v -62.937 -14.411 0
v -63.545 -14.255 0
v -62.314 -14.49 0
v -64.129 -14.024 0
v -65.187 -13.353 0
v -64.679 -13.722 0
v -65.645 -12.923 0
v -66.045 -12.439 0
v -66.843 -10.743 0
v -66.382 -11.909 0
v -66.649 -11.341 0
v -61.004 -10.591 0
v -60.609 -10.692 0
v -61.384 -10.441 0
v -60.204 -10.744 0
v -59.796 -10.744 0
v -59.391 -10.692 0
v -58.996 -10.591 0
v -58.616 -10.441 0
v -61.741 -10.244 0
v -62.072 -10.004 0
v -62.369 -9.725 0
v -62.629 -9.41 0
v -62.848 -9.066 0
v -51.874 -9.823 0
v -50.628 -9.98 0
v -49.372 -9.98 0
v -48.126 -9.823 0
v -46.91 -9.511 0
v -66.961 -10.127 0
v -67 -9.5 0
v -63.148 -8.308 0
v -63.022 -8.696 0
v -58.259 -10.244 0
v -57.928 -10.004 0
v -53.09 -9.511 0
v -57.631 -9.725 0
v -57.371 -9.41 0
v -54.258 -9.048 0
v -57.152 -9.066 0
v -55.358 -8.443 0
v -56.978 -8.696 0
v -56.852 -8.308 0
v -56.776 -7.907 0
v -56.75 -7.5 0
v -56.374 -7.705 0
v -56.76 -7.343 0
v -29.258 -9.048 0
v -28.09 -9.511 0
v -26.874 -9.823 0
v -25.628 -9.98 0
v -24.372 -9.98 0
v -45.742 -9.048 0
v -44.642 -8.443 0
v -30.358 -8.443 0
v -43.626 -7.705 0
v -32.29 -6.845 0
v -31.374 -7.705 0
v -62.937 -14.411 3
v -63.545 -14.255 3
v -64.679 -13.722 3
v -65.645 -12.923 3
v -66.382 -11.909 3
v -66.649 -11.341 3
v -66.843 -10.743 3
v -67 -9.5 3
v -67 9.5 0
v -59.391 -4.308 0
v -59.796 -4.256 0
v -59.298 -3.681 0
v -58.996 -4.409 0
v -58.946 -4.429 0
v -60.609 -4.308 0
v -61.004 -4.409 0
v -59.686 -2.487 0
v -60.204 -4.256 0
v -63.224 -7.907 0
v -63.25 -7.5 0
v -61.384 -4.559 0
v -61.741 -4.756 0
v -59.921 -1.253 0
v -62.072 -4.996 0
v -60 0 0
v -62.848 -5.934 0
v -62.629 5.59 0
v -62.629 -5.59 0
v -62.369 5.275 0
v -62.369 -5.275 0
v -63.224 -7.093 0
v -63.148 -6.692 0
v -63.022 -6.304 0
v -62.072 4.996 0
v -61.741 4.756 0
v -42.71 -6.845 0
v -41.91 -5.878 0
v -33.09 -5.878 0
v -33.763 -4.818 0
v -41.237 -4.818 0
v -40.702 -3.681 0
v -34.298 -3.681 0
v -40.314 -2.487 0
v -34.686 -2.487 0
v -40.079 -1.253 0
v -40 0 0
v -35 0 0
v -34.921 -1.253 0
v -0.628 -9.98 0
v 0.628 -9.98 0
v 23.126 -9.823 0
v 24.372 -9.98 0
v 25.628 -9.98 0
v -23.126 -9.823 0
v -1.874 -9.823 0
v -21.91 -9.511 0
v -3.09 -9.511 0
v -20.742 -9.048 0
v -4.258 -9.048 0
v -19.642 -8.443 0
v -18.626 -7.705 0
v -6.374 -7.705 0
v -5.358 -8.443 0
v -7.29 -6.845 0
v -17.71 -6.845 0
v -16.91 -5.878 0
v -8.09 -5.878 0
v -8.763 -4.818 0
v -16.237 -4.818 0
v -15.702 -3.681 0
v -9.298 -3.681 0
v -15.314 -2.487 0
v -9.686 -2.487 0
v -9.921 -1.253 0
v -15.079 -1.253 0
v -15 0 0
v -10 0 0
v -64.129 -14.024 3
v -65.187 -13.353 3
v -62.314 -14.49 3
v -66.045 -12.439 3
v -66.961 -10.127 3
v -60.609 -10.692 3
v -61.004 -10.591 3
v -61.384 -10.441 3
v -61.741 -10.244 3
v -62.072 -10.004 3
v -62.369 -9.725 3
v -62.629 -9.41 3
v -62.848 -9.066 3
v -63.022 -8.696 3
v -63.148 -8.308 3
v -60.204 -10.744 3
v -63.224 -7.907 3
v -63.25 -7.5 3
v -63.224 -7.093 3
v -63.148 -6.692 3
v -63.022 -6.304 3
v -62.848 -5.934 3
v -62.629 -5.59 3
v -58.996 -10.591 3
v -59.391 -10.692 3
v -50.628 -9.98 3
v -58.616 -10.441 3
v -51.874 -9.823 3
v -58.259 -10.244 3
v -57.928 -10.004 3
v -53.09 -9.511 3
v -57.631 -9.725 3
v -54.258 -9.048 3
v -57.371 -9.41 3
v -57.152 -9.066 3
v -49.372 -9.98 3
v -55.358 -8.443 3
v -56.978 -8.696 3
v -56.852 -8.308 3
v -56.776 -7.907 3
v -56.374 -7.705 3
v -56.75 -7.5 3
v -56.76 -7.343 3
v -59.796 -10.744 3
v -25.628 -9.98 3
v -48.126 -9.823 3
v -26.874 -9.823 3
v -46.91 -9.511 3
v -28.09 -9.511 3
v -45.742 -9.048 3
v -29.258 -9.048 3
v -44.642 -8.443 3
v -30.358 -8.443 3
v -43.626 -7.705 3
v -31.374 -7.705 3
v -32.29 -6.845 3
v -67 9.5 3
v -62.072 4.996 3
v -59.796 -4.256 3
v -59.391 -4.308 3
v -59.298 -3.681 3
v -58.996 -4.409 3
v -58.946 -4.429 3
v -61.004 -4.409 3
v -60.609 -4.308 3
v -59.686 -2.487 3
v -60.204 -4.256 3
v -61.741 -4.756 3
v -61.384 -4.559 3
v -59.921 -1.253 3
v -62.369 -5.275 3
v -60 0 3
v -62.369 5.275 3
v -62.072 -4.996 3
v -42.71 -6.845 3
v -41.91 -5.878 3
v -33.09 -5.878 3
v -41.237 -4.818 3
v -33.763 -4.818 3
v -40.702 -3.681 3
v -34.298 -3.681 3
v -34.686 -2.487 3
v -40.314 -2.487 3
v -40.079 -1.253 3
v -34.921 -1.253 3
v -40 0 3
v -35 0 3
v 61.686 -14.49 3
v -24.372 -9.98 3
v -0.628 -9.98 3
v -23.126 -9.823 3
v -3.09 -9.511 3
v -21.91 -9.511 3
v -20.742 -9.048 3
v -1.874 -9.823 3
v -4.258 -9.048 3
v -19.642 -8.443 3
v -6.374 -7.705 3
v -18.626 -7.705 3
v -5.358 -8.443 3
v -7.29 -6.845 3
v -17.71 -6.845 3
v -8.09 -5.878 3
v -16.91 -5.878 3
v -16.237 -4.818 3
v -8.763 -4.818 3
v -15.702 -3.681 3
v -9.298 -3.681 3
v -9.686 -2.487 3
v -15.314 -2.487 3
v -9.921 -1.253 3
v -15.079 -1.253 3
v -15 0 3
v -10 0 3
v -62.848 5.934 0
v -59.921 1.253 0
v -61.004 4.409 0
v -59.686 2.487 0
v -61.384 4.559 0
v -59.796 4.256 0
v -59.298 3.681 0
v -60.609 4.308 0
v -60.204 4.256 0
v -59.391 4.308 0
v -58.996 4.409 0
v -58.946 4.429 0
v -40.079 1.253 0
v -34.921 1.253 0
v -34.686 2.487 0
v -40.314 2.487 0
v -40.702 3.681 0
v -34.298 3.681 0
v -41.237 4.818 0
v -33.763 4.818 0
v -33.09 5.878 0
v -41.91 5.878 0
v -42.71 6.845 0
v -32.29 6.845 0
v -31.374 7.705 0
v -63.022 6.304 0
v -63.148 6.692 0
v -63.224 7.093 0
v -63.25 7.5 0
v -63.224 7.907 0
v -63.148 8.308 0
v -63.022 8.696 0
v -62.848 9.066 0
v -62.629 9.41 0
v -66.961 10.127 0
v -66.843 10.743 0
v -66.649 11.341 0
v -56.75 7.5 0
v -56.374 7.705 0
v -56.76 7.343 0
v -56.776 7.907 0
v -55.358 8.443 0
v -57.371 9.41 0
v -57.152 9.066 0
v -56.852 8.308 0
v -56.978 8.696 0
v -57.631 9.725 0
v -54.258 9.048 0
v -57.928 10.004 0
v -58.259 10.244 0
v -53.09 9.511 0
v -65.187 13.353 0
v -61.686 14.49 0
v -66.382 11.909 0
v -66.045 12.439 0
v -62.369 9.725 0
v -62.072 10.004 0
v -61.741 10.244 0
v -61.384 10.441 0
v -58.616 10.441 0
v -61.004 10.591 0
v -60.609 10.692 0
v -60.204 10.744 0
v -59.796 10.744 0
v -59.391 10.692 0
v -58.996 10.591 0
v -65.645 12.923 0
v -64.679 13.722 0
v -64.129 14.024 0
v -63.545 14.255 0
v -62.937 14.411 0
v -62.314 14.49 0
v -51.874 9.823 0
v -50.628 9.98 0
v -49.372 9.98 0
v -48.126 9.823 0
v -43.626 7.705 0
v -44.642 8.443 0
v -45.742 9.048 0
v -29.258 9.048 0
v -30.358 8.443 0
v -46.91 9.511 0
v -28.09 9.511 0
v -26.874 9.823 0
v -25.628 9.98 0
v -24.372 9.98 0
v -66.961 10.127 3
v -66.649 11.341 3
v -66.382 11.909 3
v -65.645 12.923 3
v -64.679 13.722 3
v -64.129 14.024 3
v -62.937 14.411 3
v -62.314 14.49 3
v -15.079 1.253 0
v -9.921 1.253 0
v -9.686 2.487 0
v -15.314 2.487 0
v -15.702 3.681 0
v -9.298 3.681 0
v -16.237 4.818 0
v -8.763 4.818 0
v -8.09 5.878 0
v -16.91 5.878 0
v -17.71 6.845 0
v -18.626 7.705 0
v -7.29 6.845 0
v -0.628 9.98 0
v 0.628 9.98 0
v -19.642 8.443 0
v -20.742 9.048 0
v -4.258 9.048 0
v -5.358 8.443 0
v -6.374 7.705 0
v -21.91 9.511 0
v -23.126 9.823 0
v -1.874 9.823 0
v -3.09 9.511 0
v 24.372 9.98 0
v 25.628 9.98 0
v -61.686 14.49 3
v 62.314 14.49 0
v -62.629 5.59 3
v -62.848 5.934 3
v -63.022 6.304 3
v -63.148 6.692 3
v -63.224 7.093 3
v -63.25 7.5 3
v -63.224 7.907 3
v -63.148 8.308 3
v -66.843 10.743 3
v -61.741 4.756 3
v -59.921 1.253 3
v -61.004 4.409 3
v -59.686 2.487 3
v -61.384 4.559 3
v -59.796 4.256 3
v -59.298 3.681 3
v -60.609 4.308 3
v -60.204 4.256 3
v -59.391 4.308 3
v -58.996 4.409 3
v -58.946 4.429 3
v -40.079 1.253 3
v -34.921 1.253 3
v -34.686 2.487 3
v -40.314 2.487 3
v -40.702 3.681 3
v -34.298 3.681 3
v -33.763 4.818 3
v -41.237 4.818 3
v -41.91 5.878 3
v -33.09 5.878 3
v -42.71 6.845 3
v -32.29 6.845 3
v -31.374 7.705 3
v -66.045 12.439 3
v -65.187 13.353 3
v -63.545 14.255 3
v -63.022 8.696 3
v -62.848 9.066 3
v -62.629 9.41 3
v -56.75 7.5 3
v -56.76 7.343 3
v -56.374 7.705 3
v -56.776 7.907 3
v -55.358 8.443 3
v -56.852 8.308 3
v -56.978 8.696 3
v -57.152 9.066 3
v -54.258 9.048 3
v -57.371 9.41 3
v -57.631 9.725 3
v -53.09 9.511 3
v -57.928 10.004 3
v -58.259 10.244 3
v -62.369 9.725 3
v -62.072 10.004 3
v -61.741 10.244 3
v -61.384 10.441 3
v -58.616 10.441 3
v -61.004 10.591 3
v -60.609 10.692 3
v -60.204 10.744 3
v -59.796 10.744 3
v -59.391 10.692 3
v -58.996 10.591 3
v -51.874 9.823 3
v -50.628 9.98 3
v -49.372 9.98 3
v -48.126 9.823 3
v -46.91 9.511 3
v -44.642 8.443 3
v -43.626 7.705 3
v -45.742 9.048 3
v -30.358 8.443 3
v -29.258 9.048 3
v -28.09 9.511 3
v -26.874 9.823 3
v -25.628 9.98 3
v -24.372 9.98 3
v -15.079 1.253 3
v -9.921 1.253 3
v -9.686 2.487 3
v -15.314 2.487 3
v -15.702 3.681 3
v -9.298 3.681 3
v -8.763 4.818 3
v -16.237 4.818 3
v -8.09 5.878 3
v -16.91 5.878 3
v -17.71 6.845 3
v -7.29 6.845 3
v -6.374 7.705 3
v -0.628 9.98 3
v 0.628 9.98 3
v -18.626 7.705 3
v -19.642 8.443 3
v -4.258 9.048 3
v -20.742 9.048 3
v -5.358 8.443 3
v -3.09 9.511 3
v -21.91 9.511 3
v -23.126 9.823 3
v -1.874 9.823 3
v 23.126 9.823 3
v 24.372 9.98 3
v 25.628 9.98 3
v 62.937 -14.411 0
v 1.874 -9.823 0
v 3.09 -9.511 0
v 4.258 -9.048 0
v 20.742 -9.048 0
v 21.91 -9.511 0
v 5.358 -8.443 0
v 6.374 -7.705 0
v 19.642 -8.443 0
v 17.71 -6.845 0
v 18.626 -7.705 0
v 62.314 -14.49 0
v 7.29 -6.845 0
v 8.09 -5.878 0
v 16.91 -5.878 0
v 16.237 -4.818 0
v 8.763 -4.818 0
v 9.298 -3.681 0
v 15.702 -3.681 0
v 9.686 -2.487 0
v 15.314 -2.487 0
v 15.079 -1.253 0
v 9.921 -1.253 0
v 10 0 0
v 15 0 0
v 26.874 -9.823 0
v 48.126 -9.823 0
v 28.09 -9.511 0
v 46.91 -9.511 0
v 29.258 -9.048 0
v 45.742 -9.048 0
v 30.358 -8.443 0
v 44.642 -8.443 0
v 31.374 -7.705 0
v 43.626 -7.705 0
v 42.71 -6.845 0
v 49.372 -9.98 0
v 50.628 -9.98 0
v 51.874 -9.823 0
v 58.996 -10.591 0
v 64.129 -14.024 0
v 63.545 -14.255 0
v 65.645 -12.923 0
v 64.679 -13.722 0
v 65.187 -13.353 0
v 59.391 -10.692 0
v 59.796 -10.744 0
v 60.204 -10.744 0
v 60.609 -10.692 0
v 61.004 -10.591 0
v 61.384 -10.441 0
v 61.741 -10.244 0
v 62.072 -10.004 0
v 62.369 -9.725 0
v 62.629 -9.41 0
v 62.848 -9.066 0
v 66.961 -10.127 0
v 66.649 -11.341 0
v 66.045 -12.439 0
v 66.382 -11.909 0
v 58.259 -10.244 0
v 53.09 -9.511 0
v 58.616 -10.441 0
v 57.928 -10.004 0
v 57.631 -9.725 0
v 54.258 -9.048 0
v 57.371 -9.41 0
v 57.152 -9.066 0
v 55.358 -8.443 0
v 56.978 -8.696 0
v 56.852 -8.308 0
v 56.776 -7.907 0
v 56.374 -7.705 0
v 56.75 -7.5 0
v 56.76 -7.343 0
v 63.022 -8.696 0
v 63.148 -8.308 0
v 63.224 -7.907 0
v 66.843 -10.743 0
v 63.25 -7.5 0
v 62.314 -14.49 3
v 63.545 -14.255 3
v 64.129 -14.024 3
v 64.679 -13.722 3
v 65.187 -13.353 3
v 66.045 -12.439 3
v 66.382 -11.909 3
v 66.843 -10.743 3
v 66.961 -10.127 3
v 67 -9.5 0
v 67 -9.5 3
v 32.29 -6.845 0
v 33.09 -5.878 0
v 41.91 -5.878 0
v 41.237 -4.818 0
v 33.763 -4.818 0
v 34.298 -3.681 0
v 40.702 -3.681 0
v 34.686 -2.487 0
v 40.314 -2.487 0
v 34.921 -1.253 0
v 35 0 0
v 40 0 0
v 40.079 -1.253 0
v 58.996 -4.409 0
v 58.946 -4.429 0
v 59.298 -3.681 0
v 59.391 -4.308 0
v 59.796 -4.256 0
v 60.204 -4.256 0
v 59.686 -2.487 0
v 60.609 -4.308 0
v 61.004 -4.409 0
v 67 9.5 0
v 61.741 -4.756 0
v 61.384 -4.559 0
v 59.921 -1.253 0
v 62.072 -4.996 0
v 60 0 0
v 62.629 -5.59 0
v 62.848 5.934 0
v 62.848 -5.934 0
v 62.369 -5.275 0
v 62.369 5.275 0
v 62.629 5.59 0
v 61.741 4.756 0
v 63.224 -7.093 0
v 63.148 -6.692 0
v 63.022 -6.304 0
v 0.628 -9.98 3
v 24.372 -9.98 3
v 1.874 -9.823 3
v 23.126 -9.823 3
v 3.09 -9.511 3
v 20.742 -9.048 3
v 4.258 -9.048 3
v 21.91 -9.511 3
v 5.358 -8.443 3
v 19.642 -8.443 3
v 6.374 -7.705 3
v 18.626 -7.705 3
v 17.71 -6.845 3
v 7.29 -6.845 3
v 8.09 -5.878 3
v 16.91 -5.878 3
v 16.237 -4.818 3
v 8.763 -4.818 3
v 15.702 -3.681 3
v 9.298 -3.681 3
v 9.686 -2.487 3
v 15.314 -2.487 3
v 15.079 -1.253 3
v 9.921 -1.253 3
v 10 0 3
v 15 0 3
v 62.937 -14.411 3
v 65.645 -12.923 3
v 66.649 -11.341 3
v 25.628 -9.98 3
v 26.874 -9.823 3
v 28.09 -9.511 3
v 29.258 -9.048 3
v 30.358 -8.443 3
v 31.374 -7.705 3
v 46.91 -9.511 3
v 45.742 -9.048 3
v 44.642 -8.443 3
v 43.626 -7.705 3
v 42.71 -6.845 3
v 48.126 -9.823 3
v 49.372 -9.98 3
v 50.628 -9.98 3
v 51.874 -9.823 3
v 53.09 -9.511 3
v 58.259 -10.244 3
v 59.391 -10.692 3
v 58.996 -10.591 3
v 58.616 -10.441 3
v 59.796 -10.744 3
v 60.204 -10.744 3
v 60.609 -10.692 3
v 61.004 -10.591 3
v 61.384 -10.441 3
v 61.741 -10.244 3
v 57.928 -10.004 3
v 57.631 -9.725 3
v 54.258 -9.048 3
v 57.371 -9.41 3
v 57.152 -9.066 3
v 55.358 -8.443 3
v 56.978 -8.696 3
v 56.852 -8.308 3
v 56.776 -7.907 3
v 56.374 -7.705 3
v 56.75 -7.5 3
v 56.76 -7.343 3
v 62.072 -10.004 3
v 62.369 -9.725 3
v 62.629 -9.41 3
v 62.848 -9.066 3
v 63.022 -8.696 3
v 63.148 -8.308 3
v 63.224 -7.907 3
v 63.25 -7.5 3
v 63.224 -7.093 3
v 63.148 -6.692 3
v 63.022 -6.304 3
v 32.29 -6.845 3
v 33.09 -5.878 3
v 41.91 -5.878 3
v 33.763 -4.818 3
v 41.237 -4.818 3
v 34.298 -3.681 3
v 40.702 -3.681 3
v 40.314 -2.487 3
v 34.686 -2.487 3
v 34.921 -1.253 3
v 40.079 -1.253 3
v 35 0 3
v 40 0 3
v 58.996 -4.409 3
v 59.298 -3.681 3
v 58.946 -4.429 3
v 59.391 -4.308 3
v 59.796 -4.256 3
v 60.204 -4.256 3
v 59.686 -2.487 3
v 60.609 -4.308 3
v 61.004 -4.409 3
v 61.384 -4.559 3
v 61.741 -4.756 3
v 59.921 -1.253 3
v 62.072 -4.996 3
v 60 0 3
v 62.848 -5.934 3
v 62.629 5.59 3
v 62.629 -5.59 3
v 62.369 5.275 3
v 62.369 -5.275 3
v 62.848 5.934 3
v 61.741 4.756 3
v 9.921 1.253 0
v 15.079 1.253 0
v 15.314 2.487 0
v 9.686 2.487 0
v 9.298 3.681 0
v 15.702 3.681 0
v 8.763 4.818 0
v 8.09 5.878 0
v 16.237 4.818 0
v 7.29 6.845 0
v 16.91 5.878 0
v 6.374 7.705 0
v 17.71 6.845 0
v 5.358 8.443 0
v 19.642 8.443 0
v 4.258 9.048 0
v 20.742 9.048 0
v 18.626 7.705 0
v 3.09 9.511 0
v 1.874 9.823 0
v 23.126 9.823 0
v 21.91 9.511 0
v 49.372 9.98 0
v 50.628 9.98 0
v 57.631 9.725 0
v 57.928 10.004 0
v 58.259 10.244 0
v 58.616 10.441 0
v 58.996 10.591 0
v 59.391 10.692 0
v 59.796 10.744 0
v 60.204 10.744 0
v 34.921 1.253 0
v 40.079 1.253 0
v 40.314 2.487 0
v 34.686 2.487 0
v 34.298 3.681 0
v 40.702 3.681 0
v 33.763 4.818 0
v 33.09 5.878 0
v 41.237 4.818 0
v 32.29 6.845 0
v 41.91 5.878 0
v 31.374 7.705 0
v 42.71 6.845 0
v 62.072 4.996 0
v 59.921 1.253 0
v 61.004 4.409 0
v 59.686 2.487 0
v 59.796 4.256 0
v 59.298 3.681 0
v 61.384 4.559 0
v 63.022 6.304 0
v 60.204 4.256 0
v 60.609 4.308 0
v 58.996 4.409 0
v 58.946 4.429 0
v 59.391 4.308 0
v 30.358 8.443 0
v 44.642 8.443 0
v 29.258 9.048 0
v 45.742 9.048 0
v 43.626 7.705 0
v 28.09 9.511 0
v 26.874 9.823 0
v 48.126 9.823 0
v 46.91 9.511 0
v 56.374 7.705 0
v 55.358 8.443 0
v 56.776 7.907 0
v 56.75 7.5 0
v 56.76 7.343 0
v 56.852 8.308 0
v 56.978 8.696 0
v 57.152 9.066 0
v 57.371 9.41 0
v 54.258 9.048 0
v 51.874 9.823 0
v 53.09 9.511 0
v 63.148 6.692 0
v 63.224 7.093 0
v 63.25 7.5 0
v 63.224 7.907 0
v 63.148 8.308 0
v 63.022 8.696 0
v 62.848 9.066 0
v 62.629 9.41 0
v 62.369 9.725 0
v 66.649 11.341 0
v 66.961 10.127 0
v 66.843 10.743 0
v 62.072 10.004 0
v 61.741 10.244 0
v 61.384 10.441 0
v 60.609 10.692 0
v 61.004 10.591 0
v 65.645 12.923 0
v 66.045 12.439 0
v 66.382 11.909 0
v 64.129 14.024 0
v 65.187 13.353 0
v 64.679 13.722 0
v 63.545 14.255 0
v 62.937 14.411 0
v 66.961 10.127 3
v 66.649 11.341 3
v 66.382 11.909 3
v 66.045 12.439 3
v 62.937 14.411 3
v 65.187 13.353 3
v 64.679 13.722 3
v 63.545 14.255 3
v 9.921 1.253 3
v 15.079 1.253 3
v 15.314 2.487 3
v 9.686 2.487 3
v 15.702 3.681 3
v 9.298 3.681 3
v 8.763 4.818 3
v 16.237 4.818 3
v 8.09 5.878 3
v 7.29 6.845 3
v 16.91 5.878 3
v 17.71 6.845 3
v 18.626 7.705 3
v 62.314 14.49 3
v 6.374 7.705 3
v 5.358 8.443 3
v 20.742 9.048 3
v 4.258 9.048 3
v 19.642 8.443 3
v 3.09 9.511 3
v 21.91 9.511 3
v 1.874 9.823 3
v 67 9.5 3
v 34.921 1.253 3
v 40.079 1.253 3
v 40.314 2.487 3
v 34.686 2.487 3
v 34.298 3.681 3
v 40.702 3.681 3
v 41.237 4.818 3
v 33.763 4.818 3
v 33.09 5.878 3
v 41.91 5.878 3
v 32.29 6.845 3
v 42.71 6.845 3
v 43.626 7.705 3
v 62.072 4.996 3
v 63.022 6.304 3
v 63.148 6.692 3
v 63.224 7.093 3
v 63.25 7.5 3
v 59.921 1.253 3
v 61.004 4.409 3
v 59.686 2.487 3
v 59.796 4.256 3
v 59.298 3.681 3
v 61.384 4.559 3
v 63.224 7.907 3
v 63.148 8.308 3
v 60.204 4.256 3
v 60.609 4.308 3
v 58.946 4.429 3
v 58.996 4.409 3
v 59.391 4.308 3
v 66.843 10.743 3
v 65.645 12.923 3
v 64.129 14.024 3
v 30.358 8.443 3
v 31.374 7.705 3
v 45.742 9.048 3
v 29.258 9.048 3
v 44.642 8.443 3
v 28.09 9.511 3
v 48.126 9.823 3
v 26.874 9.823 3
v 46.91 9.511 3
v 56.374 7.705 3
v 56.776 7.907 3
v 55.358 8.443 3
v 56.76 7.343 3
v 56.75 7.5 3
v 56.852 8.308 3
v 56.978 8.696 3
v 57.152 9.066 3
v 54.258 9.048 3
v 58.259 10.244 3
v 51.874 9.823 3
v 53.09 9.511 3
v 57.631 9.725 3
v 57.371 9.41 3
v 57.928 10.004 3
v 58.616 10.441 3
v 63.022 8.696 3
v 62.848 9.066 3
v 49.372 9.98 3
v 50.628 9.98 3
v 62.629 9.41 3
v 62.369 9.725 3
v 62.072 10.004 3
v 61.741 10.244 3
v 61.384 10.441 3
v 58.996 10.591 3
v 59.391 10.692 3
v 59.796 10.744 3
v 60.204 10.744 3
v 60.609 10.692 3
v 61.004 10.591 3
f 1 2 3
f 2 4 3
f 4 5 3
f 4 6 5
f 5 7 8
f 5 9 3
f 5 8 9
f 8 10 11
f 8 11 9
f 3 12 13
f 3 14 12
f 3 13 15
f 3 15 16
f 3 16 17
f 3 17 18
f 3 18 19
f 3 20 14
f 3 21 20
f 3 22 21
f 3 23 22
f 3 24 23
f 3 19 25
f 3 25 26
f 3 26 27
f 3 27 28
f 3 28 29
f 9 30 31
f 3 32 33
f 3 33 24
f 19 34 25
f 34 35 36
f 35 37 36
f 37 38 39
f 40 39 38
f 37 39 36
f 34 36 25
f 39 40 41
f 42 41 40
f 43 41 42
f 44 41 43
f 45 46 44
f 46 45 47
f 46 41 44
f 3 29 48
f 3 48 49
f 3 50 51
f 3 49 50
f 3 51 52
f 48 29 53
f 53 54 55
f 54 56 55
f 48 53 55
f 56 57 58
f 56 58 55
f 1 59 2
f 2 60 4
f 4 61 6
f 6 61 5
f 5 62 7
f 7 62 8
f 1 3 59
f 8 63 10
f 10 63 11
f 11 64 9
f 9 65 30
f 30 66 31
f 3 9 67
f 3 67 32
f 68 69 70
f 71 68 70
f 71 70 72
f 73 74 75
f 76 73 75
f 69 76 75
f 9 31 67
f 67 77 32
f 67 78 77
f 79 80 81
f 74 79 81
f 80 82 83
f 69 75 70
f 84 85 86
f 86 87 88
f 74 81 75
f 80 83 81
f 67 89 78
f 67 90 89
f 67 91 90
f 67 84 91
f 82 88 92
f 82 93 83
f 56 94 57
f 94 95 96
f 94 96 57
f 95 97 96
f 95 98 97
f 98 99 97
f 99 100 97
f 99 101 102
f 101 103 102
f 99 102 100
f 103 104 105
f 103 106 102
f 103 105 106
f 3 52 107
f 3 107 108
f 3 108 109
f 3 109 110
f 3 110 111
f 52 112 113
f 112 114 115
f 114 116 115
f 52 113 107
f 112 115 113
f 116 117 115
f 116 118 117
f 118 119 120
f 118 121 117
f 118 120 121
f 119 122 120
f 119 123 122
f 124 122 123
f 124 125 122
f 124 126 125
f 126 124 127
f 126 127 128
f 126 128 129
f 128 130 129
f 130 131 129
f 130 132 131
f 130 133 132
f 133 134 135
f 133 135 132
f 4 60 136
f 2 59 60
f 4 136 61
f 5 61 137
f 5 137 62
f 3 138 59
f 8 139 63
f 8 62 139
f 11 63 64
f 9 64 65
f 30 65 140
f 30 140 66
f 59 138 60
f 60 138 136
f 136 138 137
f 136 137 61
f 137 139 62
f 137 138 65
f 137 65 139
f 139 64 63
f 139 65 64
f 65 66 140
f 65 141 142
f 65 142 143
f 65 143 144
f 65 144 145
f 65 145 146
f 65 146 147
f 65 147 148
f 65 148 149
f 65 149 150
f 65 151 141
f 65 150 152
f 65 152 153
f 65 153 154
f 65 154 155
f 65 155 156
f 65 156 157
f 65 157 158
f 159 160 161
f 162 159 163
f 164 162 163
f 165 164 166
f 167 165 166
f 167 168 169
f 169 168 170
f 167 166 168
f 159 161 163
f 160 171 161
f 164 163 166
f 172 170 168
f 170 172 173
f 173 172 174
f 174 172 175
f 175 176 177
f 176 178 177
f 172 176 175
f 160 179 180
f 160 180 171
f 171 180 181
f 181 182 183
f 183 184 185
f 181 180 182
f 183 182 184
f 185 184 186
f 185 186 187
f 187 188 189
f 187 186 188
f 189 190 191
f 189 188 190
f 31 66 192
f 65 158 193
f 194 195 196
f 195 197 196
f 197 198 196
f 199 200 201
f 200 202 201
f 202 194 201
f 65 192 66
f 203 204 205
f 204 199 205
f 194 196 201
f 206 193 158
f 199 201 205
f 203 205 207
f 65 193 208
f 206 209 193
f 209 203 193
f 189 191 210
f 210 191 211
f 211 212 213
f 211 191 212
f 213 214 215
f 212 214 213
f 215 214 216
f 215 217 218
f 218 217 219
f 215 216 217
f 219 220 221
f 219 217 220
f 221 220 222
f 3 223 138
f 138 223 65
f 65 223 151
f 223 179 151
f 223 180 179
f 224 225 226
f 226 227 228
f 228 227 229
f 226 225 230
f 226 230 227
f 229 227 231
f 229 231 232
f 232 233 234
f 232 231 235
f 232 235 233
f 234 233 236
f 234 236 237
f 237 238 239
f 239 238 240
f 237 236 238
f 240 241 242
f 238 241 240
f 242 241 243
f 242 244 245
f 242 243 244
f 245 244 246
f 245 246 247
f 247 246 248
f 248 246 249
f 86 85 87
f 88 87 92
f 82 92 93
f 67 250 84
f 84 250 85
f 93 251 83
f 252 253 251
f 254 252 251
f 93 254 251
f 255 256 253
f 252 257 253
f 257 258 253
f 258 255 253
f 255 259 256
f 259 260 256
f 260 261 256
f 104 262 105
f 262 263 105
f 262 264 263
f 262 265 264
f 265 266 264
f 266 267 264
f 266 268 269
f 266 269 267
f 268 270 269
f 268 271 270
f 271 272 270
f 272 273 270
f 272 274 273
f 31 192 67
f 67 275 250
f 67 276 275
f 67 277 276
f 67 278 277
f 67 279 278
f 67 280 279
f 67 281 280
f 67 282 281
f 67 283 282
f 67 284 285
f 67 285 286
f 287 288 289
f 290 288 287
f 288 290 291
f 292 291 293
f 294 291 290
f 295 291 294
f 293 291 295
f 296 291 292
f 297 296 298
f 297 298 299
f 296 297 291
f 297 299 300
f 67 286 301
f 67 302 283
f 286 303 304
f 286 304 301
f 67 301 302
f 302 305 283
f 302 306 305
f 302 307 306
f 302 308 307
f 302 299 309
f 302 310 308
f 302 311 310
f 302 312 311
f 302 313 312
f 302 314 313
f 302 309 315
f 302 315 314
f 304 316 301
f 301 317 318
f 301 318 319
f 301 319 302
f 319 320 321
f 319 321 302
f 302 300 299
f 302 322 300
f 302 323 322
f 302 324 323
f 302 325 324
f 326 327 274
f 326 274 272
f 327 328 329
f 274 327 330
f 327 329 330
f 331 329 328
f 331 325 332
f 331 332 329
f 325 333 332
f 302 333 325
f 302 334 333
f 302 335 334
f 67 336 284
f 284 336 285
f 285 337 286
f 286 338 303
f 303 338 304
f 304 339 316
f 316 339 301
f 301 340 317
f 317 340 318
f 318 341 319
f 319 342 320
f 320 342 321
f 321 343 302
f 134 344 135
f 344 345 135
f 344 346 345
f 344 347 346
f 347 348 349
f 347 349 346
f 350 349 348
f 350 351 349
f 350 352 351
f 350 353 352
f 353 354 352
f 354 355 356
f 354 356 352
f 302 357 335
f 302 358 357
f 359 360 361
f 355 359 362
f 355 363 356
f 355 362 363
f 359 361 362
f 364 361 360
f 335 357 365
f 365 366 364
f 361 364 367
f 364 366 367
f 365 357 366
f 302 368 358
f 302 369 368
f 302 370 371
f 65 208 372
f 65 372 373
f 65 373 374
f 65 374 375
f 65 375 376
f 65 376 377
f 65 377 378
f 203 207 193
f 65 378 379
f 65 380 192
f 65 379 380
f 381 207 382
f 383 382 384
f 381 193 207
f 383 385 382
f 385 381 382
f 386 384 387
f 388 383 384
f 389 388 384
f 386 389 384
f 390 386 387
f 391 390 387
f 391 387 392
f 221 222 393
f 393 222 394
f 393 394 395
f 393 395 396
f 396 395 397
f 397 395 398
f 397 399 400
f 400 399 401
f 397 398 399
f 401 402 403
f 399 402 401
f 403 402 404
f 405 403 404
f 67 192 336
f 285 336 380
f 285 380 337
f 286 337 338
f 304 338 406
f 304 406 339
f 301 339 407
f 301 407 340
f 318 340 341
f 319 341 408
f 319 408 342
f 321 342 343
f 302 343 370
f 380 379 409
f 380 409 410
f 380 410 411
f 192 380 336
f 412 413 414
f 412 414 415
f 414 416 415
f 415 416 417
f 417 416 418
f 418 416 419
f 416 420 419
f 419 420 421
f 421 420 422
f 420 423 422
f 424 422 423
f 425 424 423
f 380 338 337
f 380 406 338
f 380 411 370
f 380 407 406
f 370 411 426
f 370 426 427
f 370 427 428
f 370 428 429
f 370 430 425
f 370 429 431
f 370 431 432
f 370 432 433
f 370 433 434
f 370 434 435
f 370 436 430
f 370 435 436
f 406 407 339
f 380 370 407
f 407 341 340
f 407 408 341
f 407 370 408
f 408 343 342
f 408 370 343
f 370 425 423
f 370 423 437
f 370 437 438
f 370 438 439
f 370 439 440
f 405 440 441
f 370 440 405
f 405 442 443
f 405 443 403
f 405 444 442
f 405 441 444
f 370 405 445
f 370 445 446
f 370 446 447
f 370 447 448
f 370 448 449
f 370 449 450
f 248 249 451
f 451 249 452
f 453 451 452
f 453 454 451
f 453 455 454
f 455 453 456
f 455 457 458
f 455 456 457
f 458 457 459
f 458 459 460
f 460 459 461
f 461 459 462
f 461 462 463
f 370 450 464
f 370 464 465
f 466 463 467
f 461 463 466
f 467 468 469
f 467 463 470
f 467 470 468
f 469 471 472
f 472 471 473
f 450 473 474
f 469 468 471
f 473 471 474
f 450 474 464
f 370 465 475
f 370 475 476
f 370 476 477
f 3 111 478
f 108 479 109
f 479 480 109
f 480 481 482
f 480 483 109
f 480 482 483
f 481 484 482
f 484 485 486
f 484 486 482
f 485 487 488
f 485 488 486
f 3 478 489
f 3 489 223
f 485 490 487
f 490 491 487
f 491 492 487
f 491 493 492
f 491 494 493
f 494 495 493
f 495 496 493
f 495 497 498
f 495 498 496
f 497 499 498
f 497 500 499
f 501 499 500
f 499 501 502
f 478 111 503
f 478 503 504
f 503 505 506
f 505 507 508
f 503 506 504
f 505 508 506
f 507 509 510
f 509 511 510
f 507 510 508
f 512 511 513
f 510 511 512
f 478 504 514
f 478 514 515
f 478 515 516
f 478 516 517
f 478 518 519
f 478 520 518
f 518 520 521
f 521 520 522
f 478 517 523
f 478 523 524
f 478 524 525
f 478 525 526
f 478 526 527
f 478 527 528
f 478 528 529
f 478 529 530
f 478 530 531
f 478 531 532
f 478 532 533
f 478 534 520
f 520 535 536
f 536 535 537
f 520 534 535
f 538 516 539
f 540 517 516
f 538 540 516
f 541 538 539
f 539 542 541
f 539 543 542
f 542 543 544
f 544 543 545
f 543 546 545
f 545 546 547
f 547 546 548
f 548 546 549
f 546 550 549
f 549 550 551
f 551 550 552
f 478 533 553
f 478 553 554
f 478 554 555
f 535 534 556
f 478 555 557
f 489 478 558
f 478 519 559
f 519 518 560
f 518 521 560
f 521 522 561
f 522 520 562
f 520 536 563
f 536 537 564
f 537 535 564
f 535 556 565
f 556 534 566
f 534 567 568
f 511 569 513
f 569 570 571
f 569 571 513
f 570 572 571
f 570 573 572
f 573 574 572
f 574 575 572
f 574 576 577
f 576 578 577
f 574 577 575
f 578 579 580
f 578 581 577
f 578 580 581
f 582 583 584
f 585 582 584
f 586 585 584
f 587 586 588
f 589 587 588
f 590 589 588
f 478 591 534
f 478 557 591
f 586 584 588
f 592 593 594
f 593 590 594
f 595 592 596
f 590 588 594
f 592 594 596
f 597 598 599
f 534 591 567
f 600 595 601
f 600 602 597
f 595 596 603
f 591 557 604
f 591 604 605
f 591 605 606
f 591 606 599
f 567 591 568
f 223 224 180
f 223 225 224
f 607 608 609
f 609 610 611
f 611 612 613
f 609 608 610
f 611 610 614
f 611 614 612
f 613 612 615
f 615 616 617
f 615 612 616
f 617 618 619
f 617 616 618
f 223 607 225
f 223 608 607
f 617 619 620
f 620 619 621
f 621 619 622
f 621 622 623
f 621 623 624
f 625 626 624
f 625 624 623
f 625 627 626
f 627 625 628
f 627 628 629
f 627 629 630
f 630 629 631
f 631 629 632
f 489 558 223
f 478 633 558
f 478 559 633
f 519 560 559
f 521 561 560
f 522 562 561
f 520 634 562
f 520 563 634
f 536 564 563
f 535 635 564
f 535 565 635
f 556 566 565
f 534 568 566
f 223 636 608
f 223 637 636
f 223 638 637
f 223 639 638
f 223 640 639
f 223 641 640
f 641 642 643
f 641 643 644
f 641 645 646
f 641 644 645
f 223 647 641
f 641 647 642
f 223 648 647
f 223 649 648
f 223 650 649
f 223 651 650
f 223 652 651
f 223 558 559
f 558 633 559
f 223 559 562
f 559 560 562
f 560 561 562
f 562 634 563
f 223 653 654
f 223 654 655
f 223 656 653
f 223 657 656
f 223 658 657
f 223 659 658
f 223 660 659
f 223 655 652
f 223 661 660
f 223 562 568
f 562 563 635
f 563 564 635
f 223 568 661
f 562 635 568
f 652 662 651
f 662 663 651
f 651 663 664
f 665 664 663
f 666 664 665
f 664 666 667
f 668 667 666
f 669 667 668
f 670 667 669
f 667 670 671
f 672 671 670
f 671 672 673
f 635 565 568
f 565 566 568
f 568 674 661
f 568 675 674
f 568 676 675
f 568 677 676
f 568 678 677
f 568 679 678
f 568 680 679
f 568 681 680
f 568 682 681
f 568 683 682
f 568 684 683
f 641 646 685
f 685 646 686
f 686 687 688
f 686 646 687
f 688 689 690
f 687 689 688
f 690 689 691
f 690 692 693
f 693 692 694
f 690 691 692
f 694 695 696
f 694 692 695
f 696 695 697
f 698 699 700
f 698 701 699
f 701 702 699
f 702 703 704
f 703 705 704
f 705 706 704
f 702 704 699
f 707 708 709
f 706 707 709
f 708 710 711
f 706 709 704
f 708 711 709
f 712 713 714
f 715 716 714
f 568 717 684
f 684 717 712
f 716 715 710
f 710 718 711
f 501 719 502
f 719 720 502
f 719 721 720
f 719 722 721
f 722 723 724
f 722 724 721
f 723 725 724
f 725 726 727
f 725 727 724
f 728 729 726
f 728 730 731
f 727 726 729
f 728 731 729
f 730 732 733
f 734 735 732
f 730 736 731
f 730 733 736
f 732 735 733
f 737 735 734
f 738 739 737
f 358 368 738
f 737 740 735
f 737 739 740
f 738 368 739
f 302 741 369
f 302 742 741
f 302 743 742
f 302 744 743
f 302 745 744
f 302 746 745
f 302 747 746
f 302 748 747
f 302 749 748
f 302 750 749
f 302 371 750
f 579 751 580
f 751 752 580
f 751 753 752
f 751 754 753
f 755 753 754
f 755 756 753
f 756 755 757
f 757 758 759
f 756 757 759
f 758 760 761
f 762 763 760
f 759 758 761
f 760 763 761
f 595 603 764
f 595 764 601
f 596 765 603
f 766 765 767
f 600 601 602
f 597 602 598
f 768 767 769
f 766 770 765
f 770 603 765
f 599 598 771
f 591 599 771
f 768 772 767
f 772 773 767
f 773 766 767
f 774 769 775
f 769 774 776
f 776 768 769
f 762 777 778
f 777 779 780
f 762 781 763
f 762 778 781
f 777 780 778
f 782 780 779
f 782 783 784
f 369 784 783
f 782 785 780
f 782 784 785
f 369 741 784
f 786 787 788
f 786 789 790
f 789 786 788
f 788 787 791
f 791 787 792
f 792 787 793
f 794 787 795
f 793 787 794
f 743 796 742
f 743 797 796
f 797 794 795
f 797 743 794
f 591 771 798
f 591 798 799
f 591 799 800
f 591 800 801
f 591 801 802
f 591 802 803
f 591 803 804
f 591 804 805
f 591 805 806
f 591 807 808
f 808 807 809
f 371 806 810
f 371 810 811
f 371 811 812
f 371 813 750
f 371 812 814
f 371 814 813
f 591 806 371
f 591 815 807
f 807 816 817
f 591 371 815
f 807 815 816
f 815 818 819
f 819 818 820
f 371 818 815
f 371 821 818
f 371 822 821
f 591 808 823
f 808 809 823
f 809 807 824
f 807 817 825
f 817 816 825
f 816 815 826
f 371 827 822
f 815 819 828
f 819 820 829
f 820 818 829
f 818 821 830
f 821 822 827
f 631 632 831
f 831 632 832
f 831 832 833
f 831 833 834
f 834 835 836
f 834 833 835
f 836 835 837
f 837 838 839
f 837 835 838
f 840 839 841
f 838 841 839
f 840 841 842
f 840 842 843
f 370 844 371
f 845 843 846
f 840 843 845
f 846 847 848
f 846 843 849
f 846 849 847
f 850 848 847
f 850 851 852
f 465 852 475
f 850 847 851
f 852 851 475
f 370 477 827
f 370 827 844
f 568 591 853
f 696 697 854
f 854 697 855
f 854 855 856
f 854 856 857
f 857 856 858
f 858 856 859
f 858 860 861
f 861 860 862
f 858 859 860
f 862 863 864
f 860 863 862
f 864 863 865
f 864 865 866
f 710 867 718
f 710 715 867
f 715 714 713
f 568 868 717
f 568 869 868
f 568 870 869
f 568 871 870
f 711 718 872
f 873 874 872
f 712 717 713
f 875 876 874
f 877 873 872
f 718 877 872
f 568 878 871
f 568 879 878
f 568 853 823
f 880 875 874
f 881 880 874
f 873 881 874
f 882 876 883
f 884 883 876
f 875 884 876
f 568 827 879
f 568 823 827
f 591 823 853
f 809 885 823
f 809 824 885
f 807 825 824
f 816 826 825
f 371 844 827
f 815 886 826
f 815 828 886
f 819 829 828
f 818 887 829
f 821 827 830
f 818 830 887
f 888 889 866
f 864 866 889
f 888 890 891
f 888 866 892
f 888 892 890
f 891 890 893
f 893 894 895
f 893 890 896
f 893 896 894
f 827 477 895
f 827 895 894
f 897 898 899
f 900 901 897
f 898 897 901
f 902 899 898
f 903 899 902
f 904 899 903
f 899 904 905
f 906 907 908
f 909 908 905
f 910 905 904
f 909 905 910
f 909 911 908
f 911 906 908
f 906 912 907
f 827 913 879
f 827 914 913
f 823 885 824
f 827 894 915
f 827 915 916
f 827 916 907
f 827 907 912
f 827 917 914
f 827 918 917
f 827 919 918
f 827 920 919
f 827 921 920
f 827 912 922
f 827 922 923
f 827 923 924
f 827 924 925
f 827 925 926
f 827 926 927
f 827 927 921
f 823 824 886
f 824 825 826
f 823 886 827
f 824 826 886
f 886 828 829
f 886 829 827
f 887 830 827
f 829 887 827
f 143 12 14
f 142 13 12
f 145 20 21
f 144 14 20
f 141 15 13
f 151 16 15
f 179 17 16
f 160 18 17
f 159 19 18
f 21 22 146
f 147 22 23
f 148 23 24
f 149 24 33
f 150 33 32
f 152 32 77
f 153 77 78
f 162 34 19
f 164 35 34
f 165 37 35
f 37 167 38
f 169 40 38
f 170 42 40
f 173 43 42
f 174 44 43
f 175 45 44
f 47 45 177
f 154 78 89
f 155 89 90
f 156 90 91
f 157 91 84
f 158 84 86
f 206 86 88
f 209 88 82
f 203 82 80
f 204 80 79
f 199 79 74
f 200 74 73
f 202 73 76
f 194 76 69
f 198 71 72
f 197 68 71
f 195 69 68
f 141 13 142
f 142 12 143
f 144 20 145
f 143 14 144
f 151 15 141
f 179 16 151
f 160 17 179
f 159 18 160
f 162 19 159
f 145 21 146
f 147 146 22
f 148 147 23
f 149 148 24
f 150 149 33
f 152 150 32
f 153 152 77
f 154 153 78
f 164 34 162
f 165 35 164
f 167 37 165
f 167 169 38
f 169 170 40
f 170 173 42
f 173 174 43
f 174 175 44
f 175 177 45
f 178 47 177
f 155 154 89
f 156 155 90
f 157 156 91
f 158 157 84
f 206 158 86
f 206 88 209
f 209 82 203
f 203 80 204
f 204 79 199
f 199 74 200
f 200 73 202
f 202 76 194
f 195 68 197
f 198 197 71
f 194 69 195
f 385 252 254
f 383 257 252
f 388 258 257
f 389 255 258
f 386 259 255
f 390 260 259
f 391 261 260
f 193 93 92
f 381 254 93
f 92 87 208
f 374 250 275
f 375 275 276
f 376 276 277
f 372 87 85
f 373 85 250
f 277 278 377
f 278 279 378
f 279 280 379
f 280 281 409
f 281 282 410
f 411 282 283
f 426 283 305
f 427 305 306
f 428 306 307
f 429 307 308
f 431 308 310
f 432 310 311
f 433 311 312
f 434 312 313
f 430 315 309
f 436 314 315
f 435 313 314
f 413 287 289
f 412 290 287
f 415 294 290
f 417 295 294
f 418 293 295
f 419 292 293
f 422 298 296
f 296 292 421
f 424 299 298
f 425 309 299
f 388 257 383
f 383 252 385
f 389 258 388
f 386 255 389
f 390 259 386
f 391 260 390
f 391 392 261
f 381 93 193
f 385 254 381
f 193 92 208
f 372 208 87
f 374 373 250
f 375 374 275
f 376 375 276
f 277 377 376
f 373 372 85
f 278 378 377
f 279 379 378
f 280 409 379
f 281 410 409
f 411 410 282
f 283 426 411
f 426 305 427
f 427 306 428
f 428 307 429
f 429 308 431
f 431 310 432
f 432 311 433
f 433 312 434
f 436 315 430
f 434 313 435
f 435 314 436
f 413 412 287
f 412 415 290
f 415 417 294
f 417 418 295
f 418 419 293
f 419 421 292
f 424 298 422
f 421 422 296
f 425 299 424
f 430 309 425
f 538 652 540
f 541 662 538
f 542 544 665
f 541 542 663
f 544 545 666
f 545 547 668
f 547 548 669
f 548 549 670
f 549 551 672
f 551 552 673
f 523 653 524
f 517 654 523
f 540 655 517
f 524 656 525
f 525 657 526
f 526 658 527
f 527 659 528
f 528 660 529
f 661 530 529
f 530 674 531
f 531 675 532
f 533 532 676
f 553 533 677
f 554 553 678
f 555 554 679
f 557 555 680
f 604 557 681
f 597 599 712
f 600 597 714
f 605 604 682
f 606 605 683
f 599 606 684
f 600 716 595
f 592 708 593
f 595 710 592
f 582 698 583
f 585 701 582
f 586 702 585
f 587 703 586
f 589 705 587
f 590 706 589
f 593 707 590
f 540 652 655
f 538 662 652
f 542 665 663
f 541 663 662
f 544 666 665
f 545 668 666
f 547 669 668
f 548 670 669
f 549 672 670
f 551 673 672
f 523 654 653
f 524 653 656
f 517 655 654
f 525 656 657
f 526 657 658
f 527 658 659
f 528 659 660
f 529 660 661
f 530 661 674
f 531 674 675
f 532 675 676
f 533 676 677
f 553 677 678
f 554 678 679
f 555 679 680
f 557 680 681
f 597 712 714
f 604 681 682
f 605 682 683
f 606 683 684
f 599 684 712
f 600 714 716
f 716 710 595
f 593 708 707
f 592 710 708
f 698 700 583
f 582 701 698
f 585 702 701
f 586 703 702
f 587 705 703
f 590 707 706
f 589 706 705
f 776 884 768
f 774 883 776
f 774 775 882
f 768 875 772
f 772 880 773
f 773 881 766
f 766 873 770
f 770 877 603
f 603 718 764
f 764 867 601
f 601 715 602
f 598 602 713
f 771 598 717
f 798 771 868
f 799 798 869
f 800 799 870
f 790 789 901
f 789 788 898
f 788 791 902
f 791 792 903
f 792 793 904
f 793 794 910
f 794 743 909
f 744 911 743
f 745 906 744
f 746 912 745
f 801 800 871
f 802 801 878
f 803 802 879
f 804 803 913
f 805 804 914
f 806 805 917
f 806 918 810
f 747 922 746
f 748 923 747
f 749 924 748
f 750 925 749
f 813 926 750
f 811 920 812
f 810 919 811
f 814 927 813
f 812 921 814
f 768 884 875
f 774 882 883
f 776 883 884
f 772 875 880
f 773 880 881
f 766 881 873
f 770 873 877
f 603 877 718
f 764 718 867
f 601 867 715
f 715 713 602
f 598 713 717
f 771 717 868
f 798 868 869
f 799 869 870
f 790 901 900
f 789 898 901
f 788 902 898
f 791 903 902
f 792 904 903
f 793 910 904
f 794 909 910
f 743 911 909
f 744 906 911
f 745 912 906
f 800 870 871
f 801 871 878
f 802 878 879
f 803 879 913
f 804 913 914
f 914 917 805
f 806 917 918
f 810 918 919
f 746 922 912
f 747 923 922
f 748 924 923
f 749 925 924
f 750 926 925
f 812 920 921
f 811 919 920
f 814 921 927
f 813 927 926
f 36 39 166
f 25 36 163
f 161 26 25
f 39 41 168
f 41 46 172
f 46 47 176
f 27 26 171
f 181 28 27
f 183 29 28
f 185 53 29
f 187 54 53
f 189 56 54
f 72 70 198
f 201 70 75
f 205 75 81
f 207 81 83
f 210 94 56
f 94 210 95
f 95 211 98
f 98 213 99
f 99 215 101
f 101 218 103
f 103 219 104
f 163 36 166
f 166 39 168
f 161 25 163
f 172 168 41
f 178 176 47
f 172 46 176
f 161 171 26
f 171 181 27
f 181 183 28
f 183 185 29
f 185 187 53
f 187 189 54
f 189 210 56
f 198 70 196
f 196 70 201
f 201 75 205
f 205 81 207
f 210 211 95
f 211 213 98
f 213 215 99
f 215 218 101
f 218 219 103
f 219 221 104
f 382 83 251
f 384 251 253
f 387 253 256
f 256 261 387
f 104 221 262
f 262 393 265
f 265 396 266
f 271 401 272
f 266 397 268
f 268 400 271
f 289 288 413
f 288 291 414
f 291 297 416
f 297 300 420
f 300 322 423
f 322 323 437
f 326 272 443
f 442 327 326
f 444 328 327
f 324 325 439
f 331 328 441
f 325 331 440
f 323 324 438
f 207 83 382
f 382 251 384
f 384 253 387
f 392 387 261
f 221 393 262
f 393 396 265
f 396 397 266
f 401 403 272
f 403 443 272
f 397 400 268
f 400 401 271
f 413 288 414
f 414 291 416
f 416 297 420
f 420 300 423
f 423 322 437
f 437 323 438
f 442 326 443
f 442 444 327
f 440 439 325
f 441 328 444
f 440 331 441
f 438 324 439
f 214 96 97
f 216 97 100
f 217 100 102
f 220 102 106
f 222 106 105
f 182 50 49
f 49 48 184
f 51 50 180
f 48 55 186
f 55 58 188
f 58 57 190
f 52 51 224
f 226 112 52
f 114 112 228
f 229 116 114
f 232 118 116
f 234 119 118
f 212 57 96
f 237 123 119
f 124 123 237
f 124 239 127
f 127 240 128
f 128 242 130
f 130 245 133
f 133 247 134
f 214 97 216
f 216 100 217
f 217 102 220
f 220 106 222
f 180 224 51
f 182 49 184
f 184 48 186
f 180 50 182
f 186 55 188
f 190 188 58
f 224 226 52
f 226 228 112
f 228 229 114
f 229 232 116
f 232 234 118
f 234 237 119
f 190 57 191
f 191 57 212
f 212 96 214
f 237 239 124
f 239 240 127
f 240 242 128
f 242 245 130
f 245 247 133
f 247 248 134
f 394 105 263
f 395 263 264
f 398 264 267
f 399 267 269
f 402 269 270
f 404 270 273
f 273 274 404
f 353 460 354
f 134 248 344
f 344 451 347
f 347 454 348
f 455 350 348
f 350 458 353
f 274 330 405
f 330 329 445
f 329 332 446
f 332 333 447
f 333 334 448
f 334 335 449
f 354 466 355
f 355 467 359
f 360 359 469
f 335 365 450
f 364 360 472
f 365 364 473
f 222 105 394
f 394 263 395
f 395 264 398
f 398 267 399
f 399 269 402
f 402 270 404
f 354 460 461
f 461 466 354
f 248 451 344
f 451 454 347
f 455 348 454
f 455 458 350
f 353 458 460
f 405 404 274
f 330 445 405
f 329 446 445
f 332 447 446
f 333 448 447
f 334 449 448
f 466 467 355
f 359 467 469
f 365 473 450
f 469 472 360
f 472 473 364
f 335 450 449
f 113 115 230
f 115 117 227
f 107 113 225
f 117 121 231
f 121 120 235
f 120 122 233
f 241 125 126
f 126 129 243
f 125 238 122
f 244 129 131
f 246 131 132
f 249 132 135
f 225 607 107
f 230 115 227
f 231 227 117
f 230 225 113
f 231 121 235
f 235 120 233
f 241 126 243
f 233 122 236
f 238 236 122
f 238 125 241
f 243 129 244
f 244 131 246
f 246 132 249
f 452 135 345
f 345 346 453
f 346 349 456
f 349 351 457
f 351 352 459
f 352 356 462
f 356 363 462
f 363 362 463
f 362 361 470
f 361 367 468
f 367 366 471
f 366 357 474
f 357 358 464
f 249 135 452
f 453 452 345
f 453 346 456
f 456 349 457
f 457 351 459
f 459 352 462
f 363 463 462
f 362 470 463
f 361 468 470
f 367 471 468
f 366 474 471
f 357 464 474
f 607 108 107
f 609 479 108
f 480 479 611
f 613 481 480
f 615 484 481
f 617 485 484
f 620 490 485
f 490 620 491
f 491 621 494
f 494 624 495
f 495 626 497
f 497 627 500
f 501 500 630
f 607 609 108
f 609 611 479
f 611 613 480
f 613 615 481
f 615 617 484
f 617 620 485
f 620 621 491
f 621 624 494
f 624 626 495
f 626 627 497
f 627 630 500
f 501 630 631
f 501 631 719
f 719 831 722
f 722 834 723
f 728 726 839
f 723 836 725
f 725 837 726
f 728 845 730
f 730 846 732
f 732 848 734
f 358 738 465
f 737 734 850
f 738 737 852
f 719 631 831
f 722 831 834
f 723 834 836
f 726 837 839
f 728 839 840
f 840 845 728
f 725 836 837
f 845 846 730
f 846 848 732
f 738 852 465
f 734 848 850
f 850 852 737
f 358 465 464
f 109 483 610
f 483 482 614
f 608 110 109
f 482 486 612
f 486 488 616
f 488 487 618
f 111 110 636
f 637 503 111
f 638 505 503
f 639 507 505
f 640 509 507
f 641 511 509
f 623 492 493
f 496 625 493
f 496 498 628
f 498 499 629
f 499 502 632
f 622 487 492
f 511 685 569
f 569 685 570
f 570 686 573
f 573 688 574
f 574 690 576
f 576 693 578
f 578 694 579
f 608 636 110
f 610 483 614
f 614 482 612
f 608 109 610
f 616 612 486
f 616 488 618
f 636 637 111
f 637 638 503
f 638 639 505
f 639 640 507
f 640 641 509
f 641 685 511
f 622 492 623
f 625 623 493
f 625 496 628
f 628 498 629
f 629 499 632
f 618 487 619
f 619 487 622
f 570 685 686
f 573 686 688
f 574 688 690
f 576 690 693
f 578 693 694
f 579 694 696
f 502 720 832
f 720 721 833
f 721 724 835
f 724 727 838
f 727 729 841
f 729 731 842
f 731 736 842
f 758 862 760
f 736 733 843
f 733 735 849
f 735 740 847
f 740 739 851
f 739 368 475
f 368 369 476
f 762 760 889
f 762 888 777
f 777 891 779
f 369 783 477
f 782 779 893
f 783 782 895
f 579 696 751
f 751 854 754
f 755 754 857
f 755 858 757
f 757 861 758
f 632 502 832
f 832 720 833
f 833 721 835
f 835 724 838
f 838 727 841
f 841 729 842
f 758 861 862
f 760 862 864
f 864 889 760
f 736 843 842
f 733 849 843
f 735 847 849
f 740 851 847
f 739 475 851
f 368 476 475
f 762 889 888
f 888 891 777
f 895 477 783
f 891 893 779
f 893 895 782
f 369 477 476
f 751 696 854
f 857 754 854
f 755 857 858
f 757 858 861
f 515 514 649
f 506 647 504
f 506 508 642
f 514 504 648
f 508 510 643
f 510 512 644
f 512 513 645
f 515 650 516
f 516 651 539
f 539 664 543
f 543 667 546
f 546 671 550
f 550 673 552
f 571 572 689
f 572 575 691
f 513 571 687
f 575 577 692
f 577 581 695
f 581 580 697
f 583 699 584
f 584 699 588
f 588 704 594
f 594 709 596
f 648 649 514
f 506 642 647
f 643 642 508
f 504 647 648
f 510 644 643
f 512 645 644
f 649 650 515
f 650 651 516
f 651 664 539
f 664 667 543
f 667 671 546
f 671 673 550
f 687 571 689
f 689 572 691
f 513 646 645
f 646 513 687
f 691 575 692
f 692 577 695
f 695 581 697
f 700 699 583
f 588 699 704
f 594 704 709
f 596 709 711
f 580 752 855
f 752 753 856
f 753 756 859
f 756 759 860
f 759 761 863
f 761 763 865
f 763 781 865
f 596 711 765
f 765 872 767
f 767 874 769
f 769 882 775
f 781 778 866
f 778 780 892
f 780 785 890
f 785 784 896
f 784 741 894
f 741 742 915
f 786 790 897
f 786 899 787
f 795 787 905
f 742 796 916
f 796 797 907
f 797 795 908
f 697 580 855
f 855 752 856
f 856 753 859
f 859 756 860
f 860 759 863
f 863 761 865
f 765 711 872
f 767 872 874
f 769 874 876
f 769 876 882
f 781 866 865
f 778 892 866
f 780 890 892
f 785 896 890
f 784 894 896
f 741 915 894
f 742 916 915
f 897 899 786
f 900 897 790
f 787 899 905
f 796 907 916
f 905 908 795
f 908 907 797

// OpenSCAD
$fn = 50;

difference() {
	union() {
		hull() {
			translate(v = [-62.0, 9.5, 0]) {
				cylinder(h = 3, r = 5);
			}
			translate(v = [62.0, 9.5, 0]) {
				cylinder(h = 3, r = 5);
			}
			translate(v = [-62.0, -9.5, 0]) {
				cylinder(h = 3, r = 5);
			}
			translate(v = [62.0, -9.5, 0]) {
				cylinder(h = 3, r = 5);
			}
		}
	}
	union() {
		translate(v = [-60.0, -7.5, -100.0]) {
			cylinder(h = 200, r = 3.25);
		}
		translate(v = [-60.0, 7.5, -100.0]) {
			cylinder(h = 200, r = 3.25);
		}
		translate(v = [60.0, -7.5, -100.0]) {
			cylinder(h = 200, r = 3.25);
		}
		translate(v = [60.0, 7.5, -100.0]) {
			cylinder(h = 200, r = 3.25);
		}
		translate(v = [-60.0, -7.5, -100.0]) {
			cylinder(h = 200, r = 1.8);
		}
		translate(v = [-60.0, 7.5, -100.0]) {
			cylinder(h = 200, r = 1.8);
		}
		translate(v = [60.0, -7.5, -100.0]) {
			cylinder(h = 200, r = 1.8);
		}
		translate(v = [60.0, 7.5, -100.0]) {
			cylinder(h = 200, r = 1.8);
		}
		translate(v = [-50.0, 0, 0.0]) {
			cylinder(h = 3, r = 10.0);
		}
		translate(v = [-25.0, 0, 0.0]) {
			cylinder(h = 3, r = 10.0);
		}
		cylinder(h = 3, r = 10.0);
		translate(v = [25.0, 0, 0.0]) {
			cylinder(h = 3, r = 10.0);
		}
		translate(v = [50.0, 0, 0.0]) {
			cylinder(h = 3, r = 10.0);
		}
	}
}
